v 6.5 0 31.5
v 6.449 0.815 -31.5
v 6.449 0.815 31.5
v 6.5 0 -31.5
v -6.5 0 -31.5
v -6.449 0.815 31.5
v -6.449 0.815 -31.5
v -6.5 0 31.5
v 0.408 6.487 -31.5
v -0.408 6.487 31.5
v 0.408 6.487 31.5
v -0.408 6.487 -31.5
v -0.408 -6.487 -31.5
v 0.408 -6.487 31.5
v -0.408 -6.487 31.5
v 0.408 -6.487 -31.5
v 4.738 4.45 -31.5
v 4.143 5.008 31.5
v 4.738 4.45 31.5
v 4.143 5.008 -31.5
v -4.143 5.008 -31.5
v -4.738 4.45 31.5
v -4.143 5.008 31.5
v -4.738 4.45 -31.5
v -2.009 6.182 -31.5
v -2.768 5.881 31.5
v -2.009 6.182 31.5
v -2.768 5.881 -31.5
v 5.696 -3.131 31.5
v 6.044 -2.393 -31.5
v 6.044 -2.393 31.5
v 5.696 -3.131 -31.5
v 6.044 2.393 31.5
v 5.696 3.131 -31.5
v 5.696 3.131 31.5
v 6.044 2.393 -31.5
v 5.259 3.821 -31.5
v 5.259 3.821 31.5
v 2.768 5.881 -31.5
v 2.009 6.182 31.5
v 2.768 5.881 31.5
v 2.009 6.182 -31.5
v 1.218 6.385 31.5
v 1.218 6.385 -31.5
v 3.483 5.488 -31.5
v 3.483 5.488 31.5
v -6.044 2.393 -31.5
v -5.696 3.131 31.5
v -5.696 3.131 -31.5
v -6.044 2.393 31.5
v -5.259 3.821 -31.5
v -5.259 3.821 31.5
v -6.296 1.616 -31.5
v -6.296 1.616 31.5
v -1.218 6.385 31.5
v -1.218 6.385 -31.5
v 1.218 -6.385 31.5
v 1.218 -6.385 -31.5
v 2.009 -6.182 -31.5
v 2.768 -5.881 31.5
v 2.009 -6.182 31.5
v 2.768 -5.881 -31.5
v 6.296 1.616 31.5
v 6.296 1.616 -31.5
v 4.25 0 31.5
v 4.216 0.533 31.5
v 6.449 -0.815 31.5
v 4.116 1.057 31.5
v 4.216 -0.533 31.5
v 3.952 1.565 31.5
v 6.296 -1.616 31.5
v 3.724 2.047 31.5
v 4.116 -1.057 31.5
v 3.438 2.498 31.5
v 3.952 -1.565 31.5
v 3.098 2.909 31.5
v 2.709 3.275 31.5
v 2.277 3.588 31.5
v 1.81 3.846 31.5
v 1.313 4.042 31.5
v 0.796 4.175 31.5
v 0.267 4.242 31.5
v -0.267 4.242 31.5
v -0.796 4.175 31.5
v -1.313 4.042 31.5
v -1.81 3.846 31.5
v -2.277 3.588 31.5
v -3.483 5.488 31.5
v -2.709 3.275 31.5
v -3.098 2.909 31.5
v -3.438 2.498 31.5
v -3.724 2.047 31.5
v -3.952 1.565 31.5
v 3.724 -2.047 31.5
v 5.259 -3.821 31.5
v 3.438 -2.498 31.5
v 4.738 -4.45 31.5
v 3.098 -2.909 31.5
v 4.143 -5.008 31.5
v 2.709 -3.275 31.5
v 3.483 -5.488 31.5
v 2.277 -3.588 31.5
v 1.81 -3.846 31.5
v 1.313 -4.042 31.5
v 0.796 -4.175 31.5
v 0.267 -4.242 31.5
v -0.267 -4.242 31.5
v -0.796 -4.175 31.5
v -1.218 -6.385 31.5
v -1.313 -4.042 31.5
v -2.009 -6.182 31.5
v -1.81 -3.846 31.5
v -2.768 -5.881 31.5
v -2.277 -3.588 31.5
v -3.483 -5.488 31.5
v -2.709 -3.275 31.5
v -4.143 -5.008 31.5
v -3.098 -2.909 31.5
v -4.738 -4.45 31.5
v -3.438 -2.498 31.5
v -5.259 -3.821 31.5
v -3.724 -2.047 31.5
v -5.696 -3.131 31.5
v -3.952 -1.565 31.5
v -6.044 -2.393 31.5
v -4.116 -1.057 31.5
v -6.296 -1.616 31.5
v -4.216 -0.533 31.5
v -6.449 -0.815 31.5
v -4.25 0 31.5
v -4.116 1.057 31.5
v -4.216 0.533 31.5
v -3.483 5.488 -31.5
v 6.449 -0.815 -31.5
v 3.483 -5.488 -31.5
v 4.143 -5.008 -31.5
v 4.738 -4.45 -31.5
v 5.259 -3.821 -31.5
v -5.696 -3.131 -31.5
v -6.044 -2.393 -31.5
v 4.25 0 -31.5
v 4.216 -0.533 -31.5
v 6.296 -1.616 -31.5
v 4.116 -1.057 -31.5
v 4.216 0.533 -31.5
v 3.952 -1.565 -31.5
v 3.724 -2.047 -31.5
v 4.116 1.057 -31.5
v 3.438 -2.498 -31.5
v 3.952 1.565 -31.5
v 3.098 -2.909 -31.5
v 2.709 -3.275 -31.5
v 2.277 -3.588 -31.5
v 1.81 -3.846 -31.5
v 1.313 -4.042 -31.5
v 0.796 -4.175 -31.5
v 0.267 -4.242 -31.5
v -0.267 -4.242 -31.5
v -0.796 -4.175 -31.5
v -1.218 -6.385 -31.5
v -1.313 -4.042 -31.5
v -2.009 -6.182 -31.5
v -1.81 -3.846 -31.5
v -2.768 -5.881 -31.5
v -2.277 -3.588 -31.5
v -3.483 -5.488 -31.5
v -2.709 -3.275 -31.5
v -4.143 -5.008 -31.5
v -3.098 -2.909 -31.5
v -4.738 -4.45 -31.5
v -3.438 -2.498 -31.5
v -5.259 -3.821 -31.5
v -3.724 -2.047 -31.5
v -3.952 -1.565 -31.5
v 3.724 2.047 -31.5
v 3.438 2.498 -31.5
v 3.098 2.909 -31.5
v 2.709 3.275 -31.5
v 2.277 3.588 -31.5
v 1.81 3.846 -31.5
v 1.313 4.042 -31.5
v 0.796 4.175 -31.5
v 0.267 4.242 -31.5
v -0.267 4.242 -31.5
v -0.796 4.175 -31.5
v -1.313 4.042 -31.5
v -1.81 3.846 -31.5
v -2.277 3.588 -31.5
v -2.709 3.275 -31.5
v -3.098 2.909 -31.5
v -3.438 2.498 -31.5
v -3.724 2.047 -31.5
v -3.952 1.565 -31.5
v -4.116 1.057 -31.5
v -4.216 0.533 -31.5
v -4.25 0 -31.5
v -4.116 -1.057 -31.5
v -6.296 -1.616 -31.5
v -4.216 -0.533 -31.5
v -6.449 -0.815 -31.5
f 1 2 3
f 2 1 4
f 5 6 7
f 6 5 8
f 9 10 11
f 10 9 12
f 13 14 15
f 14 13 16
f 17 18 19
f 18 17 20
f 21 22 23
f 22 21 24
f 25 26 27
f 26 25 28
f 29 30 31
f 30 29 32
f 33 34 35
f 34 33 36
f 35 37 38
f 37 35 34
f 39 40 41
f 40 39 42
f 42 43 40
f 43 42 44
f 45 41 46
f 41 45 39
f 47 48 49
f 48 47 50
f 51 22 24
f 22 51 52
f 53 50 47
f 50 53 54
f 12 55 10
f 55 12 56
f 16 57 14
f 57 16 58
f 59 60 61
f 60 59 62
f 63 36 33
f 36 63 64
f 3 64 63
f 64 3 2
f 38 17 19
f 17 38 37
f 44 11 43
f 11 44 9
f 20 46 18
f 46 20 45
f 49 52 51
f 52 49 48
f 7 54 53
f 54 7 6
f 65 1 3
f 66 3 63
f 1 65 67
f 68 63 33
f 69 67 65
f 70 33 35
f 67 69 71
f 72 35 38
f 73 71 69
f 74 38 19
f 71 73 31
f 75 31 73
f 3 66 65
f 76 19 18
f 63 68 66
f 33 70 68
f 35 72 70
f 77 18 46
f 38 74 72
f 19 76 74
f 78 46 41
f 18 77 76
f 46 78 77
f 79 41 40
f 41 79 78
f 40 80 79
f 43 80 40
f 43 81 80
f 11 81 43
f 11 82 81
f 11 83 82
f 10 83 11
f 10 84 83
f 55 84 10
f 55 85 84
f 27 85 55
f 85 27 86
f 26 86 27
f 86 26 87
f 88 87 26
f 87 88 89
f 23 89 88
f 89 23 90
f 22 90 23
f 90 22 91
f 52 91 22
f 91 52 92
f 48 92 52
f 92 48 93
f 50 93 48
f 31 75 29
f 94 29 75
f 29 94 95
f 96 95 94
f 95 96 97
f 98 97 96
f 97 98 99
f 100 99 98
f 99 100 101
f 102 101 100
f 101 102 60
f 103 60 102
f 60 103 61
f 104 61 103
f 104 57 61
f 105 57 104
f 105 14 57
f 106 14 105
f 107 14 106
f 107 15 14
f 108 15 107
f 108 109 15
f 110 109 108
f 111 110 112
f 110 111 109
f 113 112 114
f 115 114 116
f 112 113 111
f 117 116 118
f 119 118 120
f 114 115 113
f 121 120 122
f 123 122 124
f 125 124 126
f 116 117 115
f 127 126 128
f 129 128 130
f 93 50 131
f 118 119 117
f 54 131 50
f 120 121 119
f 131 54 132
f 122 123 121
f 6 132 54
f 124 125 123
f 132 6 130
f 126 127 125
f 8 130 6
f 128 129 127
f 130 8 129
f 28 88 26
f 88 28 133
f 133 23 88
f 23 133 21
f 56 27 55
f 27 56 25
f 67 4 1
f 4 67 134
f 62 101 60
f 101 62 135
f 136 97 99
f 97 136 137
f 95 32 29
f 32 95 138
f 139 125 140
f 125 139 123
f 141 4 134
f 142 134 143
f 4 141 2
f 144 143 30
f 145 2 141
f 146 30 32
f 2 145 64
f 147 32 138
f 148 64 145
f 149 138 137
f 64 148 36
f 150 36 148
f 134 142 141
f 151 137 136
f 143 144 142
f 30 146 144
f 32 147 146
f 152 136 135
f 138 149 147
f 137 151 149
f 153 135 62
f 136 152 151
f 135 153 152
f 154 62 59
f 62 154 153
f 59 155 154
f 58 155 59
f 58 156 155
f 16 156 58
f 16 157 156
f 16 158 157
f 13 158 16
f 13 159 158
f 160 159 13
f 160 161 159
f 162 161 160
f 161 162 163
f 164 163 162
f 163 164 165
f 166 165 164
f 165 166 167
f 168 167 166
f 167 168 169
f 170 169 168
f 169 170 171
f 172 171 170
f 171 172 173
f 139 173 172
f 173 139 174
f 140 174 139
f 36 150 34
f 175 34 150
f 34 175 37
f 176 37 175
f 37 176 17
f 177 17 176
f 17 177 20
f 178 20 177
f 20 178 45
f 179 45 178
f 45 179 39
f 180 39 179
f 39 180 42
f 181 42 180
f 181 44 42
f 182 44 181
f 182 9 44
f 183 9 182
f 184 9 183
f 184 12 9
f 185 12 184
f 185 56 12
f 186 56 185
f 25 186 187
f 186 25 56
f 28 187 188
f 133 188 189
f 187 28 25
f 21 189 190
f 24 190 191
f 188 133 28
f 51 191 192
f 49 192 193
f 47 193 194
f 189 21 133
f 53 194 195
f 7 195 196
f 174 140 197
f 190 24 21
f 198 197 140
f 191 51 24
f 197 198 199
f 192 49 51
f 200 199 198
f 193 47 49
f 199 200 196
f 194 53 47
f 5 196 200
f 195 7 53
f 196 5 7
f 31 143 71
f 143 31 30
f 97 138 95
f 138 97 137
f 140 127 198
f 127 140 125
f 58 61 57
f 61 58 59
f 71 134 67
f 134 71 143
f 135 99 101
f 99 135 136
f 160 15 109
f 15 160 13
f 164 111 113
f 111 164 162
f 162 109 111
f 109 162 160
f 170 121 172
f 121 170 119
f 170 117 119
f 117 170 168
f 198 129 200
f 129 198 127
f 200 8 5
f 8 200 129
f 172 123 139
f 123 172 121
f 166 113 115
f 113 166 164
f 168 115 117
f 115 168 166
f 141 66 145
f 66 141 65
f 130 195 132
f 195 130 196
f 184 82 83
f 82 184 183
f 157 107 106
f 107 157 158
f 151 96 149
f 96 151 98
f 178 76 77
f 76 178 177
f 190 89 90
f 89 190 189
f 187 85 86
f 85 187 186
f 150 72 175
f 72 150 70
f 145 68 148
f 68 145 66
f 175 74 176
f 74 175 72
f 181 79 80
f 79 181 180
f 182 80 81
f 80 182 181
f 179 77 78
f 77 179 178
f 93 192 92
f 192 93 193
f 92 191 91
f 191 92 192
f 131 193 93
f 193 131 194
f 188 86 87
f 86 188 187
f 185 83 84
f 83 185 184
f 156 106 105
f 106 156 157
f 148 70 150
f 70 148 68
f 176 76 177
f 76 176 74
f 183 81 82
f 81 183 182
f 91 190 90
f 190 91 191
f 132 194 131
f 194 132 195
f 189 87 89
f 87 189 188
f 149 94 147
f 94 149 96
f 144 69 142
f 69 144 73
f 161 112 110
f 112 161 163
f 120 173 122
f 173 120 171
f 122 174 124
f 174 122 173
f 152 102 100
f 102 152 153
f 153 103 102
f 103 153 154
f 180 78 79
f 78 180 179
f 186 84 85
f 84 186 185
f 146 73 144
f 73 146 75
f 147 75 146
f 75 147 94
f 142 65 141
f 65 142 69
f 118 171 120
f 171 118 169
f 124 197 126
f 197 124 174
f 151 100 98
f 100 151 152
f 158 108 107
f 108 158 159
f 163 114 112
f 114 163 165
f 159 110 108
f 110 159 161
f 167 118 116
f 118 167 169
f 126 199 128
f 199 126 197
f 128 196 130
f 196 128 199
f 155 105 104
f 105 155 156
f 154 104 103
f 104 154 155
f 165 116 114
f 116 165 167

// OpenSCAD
$fn = 50;


difference() {
	union() {
		translate(v = [0, 0, -31.5000000000]) {
			cylinder(h = 63, r = 6.5000000000);
		}
	}
	union() {
		translate(v = [0, 0, -100.0000000000]) {
			cylinder(h = 200, r = 4.2500000000);
		}
	}
}
